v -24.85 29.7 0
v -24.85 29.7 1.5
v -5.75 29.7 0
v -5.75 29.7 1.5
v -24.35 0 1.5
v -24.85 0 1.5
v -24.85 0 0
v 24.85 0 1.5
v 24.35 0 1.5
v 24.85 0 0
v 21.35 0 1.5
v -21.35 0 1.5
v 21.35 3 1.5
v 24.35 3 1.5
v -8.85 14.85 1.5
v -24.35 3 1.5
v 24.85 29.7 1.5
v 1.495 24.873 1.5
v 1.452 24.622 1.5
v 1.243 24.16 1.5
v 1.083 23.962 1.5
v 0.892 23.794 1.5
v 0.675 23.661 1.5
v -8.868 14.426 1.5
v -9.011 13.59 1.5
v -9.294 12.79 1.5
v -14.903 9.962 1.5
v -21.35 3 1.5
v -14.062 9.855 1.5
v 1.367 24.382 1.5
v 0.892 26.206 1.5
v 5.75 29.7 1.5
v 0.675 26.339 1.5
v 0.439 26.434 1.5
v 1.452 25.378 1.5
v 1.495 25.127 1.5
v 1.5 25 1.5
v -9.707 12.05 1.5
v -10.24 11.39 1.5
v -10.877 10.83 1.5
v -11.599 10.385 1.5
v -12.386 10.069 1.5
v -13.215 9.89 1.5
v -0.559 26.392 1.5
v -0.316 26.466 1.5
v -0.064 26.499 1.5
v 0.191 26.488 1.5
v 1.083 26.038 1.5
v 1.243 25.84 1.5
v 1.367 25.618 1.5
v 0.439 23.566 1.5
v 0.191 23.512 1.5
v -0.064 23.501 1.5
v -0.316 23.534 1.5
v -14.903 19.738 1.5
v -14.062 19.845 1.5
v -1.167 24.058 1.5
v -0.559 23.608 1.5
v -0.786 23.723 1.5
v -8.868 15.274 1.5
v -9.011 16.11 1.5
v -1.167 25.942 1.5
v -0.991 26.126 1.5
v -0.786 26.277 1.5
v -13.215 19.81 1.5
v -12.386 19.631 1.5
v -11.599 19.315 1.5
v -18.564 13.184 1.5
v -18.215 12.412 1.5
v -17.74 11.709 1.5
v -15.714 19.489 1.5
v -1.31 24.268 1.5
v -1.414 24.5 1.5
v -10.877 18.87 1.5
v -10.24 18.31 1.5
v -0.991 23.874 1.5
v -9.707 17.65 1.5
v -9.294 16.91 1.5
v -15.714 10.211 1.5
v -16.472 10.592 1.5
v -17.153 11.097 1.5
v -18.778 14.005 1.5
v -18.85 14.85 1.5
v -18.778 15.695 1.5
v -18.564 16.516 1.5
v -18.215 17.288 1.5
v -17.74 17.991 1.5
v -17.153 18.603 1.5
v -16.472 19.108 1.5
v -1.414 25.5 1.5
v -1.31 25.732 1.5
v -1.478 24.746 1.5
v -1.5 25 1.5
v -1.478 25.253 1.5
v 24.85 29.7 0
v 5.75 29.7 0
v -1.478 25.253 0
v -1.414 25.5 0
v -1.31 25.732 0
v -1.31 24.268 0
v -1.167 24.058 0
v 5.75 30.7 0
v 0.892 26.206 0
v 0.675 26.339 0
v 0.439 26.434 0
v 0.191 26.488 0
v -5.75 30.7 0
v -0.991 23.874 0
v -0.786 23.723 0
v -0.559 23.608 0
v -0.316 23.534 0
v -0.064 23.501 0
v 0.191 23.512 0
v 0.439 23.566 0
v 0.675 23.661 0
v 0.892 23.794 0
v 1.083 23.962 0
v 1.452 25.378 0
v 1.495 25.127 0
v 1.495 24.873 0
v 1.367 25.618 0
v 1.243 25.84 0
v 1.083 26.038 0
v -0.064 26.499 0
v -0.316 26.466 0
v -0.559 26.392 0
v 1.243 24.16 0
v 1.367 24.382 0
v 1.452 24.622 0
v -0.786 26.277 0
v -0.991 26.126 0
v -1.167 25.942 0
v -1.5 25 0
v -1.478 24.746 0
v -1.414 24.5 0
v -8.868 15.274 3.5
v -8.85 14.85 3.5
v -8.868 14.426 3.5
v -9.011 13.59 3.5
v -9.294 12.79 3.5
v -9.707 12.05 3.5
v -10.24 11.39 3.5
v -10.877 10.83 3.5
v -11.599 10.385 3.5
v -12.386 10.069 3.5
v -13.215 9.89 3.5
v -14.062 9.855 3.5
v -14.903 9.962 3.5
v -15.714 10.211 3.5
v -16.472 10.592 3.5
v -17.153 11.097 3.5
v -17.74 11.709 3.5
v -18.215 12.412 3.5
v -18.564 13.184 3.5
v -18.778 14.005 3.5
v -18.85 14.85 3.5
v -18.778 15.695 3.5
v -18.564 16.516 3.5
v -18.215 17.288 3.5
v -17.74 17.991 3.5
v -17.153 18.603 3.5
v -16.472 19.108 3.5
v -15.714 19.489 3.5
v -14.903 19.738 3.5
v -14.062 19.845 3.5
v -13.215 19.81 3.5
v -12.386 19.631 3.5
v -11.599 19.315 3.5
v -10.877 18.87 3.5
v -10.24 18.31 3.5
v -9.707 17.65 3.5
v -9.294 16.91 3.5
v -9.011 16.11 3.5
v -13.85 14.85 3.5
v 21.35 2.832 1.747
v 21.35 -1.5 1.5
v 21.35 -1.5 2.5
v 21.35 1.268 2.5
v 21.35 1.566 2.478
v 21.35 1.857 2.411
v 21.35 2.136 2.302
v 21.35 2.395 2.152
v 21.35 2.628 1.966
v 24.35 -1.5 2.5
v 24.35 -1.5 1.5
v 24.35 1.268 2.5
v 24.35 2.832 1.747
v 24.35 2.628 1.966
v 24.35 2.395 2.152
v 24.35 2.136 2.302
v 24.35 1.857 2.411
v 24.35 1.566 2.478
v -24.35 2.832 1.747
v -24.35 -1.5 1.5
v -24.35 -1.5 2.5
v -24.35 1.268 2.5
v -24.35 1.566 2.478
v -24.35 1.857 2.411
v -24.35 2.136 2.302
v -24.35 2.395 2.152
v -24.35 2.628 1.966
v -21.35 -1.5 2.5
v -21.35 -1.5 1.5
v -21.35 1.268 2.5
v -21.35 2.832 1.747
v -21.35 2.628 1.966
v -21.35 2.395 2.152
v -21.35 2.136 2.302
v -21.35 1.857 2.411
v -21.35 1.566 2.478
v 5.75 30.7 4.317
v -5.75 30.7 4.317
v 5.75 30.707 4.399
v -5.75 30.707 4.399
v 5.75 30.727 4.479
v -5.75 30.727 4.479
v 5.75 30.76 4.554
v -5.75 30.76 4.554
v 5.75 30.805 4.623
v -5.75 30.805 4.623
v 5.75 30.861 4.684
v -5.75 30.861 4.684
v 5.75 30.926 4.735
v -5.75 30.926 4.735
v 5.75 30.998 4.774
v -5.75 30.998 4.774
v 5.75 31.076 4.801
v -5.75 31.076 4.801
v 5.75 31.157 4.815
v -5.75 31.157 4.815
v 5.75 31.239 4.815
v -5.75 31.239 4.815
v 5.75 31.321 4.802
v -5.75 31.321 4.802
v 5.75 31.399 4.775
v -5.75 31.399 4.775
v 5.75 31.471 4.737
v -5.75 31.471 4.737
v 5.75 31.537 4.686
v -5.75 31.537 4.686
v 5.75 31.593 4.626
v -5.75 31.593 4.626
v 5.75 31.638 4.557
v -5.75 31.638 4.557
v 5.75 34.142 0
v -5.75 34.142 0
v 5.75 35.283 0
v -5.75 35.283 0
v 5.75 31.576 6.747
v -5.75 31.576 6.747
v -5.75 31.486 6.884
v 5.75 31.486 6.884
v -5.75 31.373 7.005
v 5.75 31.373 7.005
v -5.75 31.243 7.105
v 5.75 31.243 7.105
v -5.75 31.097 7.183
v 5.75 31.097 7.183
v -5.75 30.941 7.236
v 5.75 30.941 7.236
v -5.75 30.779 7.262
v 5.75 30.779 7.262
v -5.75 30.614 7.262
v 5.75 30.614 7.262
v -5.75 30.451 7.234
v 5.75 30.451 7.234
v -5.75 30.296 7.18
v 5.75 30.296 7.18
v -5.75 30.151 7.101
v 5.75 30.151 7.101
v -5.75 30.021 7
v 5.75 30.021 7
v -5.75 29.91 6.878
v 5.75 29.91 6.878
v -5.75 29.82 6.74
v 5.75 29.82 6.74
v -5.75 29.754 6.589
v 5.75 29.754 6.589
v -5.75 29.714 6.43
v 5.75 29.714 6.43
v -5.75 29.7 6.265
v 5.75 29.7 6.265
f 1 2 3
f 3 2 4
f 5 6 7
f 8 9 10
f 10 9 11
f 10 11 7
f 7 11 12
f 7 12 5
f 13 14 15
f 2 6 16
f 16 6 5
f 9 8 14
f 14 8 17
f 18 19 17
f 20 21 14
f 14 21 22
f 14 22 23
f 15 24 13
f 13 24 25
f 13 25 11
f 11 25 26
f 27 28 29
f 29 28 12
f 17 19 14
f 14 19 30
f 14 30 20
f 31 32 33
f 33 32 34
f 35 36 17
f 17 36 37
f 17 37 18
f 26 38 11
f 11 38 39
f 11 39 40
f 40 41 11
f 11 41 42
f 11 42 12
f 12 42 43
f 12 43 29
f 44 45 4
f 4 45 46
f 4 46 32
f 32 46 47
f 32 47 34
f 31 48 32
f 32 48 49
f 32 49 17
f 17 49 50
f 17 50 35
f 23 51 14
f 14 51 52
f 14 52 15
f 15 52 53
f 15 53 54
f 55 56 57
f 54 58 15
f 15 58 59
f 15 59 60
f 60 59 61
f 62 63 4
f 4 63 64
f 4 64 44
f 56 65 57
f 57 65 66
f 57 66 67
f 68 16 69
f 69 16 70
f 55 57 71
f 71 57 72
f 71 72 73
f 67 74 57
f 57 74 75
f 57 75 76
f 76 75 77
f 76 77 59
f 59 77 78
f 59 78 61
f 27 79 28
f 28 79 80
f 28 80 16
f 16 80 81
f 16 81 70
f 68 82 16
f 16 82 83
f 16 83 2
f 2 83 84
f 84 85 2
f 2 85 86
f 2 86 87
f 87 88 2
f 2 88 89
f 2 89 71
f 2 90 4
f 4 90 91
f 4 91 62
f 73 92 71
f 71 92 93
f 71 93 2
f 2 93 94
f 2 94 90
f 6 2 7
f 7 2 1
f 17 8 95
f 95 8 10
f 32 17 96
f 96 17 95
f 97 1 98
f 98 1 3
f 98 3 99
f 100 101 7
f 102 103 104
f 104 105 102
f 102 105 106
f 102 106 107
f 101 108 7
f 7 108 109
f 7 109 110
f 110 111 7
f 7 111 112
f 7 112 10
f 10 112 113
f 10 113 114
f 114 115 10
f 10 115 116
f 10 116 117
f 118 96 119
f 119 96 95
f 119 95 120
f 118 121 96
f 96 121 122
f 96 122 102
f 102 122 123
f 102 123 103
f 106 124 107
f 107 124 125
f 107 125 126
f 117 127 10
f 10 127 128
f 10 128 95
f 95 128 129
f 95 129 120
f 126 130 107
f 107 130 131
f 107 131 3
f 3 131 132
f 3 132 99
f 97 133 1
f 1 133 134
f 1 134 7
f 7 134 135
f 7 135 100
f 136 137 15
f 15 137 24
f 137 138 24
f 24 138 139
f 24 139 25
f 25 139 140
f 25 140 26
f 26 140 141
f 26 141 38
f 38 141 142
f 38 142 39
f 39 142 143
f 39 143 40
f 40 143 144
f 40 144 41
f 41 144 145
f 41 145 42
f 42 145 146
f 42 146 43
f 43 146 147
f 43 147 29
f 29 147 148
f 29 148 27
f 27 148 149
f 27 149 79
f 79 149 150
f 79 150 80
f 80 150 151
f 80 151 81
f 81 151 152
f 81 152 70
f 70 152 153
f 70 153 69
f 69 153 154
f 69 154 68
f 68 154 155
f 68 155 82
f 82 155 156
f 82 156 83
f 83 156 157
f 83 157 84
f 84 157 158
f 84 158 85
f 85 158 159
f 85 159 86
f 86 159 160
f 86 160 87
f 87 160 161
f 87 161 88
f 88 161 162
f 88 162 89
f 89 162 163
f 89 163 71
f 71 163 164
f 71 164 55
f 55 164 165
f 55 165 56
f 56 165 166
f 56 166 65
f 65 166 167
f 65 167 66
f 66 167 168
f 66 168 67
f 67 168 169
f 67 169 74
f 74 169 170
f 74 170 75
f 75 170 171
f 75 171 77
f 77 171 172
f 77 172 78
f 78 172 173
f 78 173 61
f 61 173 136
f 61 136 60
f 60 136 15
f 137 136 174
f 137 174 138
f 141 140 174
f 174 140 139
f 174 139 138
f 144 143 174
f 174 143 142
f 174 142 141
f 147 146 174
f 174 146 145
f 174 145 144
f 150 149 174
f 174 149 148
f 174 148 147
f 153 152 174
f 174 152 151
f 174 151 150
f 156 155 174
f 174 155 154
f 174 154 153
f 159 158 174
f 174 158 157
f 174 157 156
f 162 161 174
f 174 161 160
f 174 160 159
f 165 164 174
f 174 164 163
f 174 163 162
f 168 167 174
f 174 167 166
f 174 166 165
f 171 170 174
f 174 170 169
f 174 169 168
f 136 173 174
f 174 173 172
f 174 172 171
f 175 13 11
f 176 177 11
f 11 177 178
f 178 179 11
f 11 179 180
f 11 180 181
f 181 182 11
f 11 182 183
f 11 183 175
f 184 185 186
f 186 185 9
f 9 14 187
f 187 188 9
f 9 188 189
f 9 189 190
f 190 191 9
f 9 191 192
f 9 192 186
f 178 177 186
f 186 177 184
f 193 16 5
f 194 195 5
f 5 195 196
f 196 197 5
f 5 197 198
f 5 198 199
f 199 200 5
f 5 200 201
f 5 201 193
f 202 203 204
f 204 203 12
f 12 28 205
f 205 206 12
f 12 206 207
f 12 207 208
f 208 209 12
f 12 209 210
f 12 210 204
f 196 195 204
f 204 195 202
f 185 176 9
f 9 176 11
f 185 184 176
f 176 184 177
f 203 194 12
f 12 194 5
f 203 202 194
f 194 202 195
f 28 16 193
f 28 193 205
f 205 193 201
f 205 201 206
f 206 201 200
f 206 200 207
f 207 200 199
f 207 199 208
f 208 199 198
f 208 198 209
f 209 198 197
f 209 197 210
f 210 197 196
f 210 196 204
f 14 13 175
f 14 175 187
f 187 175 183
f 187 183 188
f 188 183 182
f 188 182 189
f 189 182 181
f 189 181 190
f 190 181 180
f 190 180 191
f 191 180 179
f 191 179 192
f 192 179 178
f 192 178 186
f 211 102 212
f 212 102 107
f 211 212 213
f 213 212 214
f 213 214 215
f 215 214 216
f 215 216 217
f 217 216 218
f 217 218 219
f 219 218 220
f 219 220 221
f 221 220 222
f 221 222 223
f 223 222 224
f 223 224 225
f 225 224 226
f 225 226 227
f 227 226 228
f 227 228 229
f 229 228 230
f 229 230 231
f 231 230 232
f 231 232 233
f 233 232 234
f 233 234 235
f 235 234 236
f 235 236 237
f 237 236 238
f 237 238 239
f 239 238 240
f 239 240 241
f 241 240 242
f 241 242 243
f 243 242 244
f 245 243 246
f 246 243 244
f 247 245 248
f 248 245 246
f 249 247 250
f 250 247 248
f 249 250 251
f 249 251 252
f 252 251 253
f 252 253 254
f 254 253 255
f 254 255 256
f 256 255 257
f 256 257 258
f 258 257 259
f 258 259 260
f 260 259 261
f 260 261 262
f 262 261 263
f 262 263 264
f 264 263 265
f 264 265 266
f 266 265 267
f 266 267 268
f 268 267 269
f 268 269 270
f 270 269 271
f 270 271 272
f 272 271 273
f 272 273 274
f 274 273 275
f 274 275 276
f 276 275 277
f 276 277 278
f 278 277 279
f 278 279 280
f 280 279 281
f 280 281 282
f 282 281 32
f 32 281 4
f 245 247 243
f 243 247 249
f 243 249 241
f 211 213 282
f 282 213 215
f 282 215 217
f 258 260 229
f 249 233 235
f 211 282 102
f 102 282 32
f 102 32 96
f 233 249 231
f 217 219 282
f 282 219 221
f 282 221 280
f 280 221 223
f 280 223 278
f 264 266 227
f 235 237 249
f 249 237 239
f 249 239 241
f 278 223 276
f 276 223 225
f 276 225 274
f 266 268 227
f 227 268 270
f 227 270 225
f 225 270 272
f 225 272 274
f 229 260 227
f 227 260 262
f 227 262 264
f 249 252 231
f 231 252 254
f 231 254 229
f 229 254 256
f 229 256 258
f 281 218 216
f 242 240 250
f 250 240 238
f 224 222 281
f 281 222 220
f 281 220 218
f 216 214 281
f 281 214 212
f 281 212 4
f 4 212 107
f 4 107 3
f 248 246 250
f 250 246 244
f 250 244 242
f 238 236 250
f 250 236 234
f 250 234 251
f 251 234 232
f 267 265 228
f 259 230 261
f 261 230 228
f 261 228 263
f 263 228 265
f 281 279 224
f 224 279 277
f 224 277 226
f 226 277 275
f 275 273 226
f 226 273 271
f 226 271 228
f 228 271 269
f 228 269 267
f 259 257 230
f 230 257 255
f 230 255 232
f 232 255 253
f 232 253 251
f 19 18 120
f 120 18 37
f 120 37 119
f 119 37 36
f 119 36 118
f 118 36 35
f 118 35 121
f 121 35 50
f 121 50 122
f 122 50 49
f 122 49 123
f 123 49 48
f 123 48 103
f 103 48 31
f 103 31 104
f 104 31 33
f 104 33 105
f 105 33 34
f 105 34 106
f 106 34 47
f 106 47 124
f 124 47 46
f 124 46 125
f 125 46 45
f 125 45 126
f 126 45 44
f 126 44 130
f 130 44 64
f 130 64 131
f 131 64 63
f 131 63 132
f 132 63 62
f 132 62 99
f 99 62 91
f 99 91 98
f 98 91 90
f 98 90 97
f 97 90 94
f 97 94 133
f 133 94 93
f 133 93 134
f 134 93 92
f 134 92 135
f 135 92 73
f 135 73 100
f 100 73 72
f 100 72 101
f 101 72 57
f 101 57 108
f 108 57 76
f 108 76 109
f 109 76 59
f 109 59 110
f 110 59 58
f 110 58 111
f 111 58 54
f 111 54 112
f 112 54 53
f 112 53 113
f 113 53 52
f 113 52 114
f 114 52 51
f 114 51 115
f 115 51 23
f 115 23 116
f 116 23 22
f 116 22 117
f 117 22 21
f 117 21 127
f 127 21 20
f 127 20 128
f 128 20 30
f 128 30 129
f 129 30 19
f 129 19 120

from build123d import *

# Parameters (mm, degrees)
CROQUIS1_W              = 49.7
CROQUIS1_H              = 29.7
SALIENTE_EXTRUIR1_DEPTH = 1.5
CROQUIS2_R              = 5
SALIENTE_EXTRUIR2_DEPTH = 2
CROQUIS3_W              = 3
CROQUIS3_H              = 3
SALIENTE_EXTRUIR3_DEPTH = 1
CROQUIS4_W              = 3
CROQUIS4_H              = 1
SALIENTE_EXTRUIR4_DEPTH = 1.5
REDONDEO1_R             = 2
SALIENTE_EXTRUIR5_DEPTH = 5.75
CROQUIS7_R              = 1.5
CORTAR_EXTRUIR1_DEPTH   = 11.5


with BuildPart() as part:
    # Croquis1 → Saliente-Extruir1 (new body)
    with BuildSketch(Plane.XY):
        with Locations((0, 14.85)):
            Rectangle(CROQUIS1_W, CROQUIS1_H)
    extrude(amount=SALIENTE_EXTRUIR1_DEPTH)

    # Croquis2 → Saliente-Extruir2 (add)
    with BuildSketch(Plane.XY.offset(1.5)):
        with Locations((-13.85, 14.85)):
            Circle(CROQUIS2_R)
    extrude(amount=SALIENTE_EXTRUIR2_DEPTH)

    # Croquis3 → Saliente-Extruir3 (add)
    with BuildSketch(Plane.XY.offset(1.5)):
        with Locations((-22.85, 1.5)):
            Rectangle(CROQUIS3_W, CROQUIS3_H)
        with Locations((22.85, 1.5)):
            Rectangle(CROQUIS3_W, CROQUIS3_H)
    extrude(amount=SALIENTE_EXTRUIR3_DEPTH)

    # Croquis4 → Saliente-Extruir4 (add)
    with BuildSketch(Plane.XZ):
        with Locations((-22.85, 2)):
            Rectangle(CROQUIS4_W, CROQUIS4_H)
        with Locations((22.85, 2)):
            Rectangle(CROQUIS4_W, CROQUIS4_H)
    extrude(amount=SALIENTE_EXTRUIR4_DEPTH)

    # Redondeo1
    # the kernel refuses this fillet: 2 mm, written as the material it takes off along each edge
    with BuildSketch(Plane(origin=(-17.019872981, 3, 2.5), x_dir=(0, -1, 0), z_dir=(-1, 0, 0)), Plane(origin=(28.680127019, 3, 2.5), x_dir=(0, -1, 0), z_dir=(-1, 0, 0))) as redondeo1_piece_1:
        with BuildLine():
            CenterArc((1.732050808, -2), REDONDEO1_R, 90, 60)
            Line((0, -1), (-0.034641016, -0.98))
            ThreePointArc((-0.034641016, -0.98), (-0.04, -0.5), (-0.04, 0))
            Line((-0.04, 0), (0, 0.04))
            Line((0, 0.04), (1.732050808, 0.04))
            Line((1.732050808, 0.04), (1.732050808, 0))
        make_face()
    extrude(amount=11.660254038, mode=Mode.SUBTRACT)

    # Croquis6 → Saliente-Extruir5 (add, symmetric)
    with BuildSketch(Plane(origin=(0, 0, 0), x_dir=(0, 0, -1), z_dir=(1, 0, 0))):
        with BuildLine():
            Line((0, 29.7), (-6.265388986, 29.7))
            ThreePointArc((-6.265388986, 29.7), (-7.234013908, 30.451472819), (-6.746848229, 31.57646848))
            Line((-6.746848229, 31.57646848), (0, 35.282628504))
            Line((0, 35.282628504), (0, 34.141686163))
            Line((0, 34.141686163), (-4.557388257, 31.63823424))
            ThreePointArc((-4.557388257, 31.63823424), (-4.800971096, 31.075736409), (-4.316658635, 30.7))
            Line((-4.316658635, 30.7), (0, 30.7))
            Line((0, 30.7), (0, 29.7))
        make_face()
    extrude(amount=SALIENTE_EXTRUIR5_DEPTH, both=True)

    # Croquis7 → Cortar-Extruir1 (cut)
    with BuildSketch(Plane(origin=(0, 0, 0), x_dir=(-1, 0, 0), z_dir=(0, 0, -1))):
        with Locations((0, 25)):
            Circle(CROQUIS7_R)
    extrude(amount=-CORTAR_EXTRUIR1_DEPTH, mode=Mode.SUBTRACT)


solid = part.part
